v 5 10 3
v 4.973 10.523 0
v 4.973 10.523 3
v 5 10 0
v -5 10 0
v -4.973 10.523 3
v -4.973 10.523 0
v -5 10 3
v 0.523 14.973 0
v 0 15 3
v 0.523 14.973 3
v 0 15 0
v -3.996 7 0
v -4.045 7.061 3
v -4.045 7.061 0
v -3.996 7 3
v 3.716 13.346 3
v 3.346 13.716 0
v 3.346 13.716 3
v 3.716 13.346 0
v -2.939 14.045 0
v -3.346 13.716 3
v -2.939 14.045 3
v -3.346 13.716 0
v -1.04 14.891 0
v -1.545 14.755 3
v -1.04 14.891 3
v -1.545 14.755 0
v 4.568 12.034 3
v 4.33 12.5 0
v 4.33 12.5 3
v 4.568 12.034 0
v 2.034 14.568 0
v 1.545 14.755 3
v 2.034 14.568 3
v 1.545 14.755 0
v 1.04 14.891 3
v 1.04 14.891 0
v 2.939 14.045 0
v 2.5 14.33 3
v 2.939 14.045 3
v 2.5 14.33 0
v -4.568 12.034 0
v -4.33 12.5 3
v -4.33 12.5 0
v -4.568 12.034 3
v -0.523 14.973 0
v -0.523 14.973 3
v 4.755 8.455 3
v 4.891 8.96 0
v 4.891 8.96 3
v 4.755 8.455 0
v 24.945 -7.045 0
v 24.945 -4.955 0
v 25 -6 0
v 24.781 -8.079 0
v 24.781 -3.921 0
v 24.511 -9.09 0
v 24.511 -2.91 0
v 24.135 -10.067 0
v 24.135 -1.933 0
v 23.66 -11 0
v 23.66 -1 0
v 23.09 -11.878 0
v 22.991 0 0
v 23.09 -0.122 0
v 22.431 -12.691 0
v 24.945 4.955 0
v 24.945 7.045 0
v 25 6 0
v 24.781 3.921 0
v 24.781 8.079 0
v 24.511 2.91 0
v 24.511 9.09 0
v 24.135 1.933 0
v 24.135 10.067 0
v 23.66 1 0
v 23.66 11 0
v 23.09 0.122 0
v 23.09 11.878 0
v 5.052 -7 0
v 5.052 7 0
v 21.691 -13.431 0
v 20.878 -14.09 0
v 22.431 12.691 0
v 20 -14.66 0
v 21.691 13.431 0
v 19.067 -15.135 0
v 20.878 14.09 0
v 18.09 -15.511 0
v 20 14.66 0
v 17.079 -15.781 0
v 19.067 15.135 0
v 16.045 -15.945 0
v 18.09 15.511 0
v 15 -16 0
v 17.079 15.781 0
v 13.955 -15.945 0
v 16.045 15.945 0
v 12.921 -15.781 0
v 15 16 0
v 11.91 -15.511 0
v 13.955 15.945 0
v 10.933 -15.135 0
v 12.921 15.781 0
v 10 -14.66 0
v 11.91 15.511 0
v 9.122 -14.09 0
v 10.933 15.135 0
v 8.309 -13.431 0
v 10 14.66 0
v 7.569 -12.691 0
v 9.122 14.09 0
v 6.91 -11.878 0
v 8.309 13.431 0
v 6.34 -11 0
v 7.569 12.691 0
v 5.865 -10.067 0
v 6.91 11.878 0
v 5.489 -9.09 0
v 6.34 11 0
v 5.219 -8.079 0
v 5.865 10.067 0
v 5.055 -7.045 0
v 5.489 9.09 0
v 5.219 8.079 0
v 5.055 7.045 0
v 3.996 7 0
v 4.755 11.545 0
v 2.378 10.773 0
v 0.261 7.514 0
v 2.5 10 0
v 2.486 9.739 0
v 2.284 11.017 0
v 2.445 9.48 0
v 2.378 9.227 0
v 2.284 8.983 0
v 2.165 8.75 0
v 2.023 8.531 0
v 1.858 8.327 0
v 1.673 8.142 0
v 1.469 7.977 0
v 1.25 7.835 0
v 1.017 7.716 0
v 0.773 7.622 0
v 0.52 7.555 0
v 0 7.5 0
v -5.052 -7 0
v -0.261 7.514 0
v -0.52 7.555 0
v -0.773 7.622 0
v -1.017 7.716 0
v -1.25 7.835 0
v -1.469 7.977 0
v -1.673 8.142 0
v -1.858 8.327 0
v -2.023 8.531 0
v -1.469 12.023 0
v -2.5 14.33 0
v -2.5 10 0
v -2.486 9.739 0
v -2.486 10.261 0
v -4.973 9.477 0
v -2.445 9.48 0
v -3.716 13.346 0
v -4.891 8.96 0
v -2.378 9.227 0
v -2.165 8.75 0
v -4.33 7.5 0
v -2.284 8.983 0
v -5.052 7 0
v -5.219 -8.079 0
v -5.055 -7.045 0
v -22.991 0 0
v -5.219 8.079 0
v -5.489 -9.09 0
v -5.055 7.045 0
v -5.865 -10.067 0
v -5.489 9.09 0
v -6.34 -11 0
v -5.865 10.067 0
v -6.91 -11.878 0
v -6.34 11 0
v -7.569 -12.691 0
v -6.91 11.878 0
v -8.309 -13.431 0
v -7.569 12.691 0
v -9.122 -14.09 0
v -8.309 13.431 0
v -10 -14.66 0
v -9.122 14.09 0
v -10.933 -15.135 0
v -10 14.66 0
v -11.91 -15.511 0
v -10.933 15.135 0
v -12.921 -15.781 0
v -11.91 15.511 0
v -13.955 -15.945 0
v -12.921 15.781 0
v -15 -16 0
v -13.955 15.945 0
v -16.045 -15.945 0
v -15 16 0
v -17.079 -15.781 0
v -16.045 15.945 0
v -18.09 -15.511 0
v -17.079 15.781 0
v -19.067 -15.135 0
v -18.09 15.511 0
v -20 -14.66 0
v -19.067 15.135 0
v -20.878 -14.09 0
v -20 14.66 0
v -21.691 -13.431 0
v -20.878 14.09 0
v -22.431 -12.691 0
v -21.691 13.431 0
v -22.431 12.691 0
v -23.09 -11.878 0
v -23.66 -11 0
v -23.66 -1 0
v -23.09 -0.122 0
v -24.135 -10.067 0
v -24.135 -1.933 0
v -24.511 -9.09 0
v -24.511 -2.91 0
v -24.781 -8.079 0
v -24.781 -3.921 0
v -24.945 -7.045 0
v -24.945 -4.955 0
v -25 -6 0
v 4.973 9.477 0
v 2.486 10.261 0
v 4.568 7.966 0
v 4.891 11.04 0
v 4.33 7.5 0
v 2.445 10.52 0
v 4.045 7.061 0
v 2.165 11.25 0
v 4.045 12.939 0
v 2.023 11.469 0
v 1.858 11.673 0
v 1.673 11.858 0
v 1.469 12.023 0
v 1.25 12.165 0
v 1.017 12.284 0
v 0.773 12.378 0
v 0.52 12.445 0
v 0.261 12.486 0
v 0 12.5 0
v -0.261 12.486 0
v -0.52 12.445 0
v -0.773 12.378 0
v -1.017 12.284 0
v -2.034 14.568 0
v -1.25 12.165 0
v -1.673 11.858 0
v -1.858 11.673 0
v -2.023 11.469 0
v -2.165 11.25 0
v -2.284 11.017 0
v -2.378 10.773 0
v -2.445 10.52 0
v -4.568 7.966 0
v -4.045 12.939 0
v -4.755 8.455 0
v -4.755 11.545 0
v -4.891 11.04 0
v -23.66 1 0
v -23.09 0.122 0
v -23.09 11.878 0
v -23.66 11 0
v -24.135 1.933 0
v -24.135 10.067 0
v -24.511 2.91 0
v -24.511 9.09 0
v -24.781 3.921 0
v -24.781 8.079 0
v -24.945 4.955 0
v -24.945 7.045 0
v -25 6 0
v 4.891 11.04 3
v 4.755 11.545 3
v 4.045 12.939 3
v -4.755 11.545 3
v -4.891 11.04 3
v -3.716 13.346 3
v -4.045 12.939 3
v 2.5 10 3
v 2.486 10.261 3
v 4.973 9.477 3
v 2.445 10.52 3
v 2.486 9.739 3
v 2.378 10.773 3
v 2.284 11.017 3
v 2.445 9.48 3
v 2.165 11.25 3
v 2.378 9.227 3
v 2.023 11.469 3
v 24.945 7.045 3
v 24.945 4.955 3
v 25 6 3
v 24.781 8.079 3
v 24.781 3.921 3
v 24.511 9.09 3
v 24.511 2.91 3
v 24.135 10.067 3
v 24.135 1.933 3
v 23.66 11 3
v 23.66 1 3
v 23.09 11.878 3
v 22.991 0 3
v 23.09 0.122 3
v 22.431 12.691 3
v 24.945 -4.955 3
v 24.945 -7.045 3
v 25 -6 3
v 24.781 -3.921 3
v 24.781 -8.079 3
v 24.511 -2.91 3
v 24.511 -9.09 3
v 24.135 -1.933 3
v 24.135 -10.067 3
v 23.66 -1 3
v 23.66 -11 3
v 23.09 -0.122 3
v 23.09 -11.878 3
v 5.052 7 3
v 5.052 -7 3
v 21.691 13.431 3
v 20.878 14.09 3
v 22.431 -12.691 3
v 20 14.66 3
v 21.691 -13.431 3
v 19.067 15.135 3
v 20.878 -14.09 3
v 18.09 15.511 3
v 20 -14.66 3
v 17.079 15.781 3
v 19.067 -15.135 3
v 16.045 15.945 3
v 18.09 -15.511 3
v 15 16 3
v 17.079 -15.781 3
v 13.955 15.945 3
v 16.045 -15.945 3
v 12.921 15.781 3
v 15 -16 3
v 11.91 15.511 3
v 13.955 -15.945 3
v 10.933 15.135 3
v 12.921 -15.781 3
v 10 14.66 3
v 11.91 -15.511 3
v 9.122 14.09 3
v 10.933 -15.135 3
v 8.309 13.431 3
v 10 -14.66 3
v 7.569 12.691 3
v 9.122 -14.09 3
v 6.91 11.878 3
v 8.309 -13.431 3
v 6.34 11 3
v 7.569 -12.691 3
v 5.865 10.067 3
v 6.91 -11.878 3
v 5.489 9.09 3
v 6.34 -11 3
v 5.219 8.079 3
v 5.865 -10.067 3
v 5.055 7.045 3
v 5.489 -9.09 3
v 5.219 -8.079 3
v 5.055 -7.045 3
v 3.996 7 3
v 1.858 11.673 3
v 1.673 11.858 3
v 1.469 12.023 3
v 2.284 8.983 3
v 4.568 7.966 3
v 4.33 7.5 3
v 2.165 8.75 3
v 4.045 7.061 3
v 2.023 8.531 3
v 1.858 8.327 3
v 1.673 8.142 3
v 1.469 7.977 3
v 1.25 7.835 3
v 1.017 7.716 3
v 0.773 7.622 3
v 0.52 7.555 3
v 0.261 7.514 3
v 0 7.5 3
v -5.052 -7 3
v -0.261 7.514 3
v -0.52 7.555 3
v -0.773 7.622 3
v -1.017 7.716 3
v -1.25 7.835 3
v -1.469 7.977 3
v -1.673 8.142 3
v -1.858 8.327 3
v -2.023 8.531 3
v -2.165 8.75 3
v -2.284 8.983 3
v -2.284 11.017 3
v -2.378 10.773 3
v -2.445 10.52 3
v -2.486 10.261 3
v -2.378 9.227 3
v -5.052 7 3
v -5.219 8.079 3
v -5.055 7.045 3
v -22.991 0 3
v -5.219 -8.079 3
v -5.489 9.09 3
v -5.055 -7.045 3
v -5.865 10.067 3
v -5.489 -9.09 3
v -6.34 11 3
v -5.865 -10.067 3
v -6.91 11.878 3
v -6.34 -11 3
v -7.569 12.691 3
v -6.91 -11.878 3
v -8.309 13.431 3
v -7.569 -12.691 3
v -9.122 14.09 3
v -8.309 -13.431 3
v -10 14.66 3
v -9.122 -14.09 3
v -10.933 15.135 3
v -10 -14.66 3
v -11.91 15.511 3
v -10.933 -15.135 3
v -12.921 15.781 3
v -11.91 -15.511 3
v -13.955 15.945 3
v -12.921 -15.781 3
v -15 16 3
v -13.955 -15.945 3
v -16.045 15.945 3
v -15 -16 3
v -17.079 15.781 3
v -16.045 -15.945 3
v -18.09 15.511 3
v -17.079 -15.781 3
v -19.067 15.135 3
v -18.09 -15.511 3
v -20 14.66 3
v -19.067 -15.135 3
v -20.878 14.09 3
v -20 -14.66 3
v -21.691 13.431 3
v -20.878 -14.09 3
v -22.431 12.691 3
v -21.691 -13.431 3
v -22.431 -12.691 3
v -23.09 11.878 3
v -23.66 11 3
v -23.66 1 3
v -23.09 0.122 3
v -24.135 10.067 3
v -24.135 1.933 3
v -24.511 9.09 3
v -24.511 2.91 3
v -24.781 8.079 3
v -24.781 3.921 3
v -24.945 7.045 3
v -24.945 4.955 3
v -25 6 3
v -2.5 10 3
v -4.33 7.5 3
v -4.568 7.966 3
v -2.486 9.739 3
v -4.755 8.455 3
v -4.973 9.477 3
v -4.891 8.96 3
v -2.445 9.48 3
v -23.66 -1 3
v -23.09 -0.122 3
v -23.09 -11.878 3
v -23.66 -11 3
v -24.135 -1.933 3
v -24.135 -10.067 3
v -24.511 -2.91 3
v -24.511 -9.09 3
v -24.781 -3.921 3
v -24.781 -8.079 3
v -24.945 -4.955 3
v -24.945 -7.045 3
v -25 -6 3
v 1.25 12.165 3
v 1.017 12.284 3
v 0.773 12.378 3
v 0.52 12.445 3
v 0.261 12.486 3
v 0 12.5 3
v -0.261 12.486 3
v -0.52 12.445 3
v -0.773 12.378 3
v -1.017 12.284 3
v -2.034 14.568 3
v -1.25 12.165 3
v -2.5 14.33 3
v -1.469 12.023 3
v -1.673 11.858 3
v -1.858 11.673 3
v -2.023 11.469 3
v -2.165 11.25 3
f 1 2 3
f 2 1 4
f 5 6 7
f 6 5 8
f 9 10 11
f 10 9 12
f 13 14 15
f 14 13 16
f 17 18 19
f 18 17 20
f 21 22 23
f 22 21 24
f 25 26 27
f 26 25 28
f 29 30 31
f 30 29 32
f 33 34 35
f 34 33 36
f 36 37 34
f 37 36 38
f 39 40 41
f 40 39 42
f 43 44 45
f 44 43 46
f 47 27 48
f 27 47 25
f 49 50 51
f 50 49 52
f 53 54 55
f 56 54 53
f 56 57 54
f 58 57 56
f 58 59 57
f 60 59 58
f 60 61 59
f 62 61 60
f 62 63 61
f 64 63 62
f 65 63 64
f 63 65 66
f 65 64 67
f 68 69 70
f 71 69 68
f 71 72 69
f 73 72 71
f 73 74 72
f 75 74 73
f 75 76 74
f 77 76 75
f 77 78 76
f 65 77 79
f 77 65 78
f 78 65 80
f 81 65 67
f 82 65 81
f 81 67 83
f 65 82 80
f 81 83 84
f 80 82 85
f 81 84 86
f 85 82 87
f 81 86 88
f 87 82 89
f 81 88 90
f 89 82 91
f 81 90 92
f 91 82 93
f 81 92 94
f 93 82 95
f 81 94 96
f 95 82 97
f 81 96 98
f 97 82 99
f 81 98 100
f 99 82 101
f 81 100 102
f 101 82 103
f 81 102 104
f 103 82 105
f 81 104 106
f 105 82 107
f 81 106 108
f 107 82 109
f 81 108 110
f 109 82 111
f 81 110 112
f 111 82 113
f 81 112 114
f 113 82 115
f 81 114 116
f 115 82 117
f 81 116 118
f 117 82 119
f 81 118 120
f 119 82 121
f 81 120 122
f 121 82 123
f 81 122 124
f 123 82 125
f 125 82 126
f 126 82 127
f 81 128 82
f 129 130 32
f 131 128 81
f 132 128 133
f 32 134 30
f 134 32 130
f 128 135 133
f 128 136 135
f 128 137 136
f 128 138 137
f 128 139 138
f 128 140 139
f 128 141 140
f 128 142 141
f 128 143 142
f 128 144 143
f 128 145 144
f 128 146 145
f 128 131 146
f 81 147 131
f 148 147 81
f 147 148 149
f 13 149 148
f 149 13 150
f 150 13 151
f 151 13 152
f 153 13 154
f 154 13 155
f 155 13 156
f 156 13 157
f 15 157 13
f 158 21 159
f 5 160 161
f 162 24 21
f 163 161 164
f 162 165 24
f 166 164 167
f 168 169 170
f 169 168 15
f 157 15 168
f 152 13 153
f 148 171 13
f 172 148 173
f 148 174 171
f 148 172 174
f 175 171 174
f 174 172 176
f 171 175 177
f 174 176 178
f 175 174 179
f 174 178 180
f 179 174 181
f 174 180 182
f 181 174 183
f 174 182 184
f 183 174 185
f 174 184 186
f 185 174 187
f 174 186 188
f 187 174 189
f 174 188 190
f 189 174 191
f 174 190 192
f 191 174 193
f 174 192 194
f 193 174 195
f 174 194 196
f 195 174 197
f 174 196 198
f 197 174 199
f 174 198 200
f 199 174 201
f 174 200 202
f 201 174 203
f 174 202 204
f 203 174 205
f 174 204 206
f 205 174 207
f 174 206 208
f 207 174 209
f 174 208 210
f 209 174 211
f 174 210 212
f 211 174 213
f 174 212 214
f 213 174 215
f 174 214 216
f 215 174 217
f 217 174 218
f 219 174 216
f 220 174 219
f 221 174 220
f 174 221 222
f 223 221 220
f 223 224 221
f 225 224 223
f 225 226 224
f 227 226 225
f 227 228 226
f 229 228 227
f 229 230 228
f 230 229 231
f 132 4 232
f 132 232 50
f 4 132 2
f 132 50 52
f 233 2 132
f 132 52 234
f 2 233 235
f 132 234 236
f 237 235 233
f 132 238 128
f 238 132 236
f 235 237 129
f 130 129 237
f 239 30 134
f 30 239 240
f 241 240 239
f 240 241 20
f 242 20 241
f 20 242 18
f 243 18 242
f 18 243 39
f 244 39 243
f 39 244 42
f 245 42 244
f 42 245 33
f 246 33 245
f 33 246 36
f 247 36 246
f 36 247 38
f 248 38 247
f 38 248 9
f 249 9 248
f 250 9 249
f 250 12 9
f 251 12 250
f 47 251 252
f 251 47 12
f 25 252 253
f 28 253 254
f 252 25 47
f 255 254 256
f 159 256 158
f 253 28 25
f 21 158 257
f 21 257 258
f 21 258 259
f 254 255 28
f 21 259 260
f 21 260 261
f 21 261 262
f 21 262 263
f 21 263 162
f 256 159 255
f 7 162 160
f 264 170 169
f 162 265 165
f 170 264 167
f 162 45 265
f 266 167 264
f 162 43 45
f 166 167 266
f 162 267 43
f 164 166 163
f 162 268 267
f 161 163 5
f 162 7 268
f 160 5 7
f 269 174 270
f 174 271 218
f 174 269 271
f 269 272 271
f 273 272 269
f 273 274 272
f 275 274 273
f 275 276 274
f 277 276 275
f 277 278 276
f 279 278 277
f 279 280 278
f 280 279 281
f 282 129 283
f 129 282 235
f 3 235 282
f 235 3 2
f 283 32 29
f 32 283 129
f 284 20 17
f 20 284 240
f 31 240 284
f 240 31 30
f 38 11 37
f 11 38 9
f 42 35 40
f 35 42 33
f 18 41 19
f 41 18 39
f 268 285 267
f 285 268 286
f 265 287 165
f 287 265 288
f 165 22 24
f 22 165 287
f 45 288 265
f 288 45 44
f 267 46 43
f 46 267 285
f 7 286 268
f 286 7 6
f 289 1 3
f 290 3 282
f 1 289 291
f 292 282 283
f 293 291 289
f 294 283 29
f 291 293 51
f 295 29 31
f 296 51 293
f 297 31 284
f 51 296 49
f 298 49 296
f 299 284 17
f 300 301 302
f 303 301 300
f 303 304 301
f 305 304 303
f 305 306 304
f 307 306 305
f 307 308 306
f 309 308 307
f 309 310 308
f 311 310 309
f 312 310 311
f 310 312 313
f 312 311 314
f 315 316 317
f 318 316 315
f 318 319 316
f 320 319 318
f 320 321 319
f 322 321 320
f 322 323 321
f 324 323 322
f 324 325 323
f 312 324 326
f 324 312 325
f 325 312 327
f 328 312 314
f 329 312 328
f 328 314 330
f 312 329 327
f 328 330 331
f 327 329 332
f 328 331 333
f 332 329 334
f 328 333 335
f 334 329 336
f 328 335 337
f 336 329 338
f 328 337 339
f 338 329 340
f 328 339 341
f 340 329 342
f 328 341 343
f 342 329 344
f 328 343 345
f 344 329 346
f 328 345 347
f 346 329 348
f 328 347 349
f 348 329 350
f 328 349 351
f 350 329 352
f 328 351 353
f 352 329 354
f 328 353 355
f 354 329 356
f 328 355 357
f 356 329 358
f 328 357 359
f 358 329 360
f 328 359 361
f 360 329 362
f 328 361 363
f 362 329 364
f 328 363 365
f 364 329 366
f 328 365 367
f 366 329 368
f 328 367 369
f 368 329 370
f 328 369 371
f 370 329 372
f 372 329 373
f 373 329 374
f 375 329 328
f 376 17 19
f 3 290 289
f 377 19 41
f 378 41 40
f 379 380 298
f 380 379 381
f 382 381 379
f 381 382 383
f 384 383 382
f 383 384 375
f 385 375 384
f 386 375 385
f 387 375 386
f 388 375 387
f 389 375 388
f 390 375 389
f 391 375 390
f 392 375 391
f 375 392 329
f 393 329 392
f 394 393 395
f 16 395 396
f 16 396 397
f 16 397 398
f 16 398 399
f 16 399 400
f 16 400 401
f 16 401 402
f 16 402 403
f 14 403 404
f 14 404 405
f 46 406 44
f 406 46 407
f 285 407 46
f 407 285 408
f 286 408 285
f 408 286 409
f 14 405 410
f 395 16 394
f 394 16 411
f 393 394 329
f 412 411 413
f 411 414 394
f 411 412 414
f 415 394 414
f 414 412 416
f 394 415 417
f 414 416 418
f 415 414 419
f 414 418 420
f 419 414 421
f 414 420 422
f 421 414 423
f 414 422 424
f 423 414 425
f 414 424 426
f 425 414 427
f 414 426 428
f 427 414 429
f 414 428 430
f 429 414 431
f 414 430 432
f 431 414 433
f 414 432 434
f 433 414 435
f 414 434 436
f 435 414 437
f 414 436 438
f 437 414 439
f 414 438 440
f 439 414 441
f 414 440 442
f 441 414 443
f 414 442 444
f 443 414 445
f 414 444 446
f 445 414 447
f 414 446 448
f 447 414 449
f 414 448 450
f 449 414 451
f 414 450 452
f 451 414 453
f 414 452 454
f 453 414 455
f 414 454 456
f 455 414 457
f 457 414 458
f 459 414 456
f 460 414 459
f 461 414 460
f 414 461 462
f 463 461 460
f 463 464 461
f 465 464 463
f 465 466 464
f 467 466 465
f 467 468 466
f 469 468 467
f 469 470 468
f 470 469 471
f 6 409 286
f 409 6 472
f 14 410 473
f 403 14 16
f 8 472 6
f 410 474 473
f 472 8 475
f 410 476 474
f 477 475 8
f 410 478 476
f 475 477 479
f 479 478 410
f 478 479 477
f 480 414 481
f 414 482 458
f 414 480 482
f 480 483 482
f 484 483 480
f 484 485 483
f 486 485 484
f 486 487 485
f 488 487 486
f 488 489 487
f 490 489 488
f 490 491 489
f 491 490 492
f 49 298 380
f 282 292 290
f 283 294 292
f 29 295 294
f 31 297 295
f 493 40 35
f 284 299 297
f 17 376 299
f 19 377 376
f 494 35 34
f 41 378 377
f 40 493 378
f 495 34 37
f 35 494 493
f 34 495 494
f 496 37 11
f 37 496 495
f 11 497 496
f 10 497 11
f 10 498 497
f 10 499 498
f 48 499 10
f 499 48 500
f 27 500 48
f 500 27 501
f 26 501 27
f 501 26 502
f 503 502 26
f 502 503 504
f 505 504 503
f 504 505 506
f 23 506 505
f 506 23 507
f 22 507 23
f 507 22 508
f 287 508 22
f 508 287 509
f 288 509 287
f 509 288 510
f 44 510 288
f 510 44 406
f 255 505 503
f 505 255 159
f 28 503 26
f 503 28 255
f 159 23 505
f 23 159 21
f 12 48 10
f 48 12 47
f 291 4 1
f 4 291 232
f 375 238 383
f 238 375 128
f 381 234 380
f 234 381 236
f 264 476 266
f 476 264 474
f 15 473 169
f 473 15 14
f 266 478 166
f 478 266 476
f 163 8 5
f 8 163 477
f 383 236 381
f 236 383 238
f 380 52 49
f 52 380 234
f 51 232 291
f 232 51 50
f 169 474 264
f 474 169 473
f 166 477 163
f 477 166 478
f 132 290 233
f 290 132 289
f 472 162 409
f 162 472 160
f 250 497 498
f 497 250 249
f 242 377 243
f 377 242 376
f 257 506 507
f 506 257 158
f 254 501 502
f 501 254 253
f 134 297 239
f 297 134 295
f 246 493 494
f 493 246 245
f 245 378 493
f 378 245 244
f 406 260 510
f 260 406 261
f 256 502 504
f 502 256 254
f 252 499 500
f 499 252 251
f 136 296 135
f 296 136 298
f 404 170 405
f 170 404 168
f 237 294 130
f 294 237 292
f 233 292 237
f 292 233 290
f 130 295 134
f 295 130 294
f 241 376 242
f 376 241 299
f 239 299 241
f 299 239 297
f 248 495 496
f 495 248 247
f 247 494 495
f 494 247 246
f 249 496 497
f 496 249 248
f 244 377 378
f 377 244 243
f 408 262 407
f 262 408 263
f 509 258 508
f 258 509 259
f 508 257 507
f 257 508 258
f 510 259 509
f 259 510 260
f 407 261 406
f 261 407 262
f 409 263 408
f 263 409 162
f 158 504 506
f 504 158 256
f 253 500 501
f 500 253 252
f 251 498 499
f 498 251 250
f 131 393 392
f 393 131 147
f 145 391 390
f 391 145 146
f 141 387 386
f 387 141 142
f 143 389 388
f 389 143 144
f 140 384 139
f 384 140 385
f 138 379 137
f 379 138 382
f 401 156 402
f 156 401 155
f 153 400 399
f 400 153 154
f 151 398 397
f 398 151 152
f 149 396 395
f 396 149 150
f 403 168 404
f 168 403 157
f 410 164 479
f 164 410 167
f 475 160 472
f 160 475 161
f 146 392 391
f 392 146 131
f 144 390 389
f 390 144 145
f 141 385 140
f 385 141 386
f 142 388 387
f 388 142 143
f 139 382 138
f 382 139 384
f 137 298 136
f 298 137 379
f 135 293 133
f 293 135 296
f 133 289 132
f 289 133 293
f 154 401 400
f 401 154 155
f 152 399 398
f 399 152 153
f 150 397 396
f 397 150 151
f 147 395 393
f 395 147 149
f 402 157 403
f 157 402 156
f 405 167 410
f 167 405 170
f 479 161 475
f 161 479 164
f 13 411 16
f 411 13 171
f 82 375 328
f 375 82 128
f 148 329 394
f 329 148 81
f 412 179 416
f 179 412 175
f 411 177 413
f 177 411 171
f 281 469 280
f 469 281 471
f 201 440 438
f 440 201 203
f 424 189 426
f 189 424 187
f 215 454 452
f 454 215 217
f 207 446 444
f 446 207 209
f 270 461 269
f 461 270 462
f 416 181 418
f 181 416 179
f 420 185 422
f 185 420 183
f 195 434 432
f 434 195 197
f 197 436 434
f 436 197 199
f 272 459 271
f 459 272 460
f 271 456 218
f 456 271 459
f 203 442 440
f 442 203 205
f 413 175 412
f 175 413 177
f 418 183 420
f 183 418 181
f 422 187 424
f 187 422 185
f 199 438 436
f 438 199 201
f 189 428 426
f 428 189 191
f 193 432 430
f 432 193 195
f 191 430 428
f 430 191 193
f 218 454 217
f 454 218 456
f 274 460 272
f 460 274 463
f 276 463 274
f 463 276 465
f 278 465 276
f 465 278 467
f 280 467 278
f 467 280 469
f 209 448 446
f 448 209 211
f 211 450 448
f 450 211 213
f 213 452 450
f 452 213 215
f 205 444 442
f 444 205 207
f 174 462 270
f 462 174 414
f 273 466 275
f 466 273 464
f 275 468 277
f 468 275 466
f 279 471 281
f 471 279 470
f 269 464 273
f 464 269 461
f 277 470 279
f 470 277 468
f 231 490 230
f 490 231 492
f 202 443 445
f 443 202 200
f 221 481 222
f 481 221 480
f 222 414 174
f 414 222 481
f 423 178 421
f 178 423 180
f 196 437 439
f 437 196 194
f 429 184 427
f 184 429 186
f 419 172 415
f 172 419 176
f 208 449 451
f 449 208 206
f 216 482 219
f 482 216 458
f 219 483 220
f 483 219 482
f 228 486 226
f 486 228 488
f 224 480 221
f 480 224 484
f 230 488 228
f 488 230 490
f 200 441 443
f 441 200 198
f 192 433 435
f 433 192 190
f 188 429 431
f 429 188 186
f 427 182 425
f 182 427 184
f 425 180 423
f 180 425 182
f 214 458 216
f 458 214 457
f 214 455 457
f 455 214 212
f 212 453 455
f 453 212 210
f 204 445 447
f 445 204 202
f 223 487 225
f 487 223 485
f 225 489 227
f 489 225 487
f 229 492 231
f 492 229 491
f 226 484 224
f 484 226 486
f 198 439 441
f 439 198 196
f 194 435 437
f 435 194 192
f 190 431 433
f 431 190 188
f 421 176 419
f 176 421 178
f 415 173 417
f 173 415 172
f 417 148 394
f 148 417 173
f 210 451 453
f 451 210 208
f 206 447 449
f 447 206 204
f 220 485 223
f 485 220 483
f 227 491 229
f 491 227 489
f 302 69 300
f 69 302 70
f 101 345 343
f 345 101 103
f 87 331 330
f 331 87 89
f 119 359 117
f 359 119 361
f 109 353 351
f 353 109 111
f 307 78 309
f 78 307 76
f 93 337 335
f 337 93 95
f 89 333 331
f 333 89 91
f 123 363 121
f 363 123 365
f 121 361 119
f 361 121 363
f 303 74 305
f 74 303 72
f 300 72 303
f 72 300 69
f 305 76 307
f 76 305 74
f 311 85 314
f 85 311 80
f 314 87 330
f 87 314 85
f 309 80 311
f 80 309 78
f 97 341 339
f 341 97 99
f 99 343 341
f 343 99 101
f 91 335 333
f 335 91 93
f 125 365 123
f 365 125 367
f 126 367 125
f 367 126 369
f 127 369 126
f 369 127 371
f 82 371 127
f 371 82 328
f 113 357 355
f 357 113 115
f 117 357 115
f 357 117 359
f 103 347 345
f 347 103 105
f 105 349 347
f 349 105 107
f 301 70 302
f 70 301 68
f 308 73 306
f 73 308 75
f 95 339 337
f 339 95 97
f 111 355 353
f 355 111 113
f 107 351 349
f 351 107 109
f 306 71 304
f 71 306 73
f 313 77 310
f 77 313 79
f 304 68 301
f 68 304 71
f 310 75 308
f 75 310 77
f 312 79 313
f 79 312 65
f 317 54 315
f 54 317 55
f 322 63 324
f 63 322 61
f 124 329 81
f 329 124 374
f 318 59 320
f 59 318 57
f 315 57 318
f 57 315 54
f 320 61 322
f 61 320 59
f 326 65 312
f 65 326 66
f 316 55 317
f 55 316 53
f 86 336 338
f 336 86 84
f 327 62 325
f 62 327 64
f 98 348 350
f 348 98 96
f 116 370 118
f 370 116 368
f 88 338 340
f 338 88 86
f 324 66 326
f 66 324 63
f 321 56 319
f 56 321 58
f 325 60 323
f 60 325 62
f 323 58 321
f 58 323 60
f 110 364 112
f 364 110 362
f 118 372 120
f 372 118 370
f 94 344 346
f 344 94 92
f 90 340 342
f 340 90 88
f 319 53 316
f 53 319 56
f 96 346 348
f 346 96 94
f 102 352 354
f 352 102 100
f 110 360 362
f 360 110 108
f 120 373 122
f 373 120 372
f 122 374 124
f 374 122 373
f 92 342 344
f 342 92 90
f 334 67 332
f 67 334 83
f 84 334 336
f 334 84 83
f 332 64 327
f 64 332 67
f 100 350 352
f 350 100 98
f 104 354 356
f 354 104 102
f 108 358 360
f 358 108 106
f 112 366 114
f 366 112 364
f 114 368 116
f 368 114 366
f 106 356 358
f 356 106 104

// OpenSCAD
$fn = 60;
altura = 3;

module osso_com_argola() {
    union() {
        // Corpo do Osso
        translate([-15, -7, 0]) cube([30, 14, altura]);
        translate([-15, 6, 0]) cylinder(h=altura, r=10);
        translate([-15, -6, 0]) cylinder(h=altura, r=10);
        translate([15, 6, 0]) cylinder(h=altura, r=10);
        translate([15, -6, 0]) cylinder(h=altura, r=10);
        
        // A Argola (Olhal) no topo esquerdo
        translate([-0, 10, 0]) 
        difference() {
            cylinder(h=altura, r=5); // Aro exterior
            translate([0, 0, -1]) cylinder(h=altura+2, r=2.5); // Buraco da argola
        }
    }
}
osso_com_argola();
